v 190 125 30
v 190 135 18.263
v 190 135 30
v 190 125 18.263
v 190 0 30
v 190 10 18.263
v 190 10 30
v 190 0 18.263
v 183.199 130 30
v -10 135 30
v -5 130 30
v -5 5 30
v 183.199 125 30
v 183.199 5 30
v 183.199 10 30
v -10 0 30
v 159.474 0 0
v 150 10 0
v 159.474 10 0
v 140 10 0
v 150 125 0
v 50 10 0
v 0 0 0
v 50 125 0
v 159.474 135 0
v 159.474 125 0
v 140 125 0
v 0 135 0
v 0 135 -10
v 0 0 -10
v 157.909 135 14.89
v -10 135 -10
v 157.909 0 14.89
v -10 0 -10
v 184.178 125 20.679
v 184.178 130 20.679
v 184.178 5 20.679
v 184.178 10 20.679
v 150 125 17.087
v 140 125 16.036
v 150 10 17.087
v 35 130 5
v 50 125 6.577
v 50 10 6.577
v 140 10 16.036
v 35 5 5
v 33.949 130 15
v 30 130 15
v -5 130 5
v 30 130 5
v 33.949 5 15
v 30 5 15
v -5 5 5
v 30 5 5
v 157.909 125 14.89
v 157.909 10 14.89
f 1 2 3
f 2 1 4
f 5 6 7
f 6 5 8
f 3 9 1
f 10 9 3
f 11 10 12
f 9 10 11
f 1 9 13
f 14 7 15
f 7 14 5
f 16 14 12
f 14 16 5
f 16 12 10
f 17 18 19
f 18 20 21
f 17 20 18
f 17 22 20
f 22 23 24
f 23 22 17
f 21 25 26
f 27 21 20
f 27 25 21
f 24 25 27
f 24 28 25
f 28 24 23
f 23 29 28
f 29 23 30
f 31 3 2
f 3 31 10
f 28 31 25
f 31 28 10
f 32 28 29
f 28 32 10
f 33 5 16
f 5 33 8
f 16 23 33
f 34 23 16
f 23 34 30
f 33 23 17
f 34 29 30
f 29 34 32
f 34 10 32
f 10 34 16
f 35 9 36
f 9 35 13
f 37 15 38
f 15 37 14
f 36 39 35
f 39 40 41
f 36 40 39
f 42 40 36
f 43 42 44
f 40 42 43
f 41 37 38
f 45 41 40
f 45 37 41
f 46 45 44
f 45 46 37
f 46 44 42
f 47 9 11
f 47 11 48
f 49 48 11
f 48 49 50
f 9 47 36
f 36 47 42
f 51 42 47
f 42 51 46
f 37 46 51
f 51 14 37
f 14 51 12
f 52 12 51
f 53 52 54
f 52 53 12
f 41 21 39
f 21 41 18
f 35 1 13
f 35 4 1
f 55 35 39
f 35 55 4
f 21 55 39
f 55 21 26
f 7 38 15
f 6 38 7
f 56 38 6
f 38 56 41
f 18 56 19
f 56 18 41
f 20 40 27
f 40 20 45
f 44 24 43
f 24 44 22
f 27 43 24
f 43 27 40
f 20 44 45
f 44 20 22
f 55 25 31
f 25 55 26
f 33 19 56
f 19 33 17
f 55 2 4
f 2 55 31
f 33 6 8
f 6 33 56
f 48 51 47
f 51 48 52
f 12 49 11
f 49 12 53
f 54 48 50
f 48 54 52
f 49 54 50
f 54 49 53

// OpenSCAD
/*
    Projector stand
*/

difference(){
    
    // Base
    union(){
        cube([190,135,30]);
        translate([-10,0,-10]){
            cube([10,135,40]);
        }
    }
    
    // Projector cut-out
    translate([(190-150-5),5,5]){
        rotate([0,-6,0]){
            cube([150,125,50]);
        }
    }
    
    // Forkers
    translate([150,10,-1]){
        cube([50,115,50]);
    }
    translate([50,10,-1]){
        cube([90,115,50]);
    }
    
    // Chin
    translate([190-30,0,-5]){
        rotate([0,-6,0]){
            cube([35,135,20]);
        }
    }
    
    // Measuring thing
    /*
    translate([(190-5-5),135-20,5]){
        #cube([5,15,15]);
    }
    */
    
    // Rear pocket
    translate([-5,5,15]){
        cube([40,125,50]);
    }
    translate([-5,5,5]){
        cube([35,125,50]);
    }
    
    // Cross-section
    translate([-15,-25,-15]){
        //cube([210,140,50]);
    }
}
